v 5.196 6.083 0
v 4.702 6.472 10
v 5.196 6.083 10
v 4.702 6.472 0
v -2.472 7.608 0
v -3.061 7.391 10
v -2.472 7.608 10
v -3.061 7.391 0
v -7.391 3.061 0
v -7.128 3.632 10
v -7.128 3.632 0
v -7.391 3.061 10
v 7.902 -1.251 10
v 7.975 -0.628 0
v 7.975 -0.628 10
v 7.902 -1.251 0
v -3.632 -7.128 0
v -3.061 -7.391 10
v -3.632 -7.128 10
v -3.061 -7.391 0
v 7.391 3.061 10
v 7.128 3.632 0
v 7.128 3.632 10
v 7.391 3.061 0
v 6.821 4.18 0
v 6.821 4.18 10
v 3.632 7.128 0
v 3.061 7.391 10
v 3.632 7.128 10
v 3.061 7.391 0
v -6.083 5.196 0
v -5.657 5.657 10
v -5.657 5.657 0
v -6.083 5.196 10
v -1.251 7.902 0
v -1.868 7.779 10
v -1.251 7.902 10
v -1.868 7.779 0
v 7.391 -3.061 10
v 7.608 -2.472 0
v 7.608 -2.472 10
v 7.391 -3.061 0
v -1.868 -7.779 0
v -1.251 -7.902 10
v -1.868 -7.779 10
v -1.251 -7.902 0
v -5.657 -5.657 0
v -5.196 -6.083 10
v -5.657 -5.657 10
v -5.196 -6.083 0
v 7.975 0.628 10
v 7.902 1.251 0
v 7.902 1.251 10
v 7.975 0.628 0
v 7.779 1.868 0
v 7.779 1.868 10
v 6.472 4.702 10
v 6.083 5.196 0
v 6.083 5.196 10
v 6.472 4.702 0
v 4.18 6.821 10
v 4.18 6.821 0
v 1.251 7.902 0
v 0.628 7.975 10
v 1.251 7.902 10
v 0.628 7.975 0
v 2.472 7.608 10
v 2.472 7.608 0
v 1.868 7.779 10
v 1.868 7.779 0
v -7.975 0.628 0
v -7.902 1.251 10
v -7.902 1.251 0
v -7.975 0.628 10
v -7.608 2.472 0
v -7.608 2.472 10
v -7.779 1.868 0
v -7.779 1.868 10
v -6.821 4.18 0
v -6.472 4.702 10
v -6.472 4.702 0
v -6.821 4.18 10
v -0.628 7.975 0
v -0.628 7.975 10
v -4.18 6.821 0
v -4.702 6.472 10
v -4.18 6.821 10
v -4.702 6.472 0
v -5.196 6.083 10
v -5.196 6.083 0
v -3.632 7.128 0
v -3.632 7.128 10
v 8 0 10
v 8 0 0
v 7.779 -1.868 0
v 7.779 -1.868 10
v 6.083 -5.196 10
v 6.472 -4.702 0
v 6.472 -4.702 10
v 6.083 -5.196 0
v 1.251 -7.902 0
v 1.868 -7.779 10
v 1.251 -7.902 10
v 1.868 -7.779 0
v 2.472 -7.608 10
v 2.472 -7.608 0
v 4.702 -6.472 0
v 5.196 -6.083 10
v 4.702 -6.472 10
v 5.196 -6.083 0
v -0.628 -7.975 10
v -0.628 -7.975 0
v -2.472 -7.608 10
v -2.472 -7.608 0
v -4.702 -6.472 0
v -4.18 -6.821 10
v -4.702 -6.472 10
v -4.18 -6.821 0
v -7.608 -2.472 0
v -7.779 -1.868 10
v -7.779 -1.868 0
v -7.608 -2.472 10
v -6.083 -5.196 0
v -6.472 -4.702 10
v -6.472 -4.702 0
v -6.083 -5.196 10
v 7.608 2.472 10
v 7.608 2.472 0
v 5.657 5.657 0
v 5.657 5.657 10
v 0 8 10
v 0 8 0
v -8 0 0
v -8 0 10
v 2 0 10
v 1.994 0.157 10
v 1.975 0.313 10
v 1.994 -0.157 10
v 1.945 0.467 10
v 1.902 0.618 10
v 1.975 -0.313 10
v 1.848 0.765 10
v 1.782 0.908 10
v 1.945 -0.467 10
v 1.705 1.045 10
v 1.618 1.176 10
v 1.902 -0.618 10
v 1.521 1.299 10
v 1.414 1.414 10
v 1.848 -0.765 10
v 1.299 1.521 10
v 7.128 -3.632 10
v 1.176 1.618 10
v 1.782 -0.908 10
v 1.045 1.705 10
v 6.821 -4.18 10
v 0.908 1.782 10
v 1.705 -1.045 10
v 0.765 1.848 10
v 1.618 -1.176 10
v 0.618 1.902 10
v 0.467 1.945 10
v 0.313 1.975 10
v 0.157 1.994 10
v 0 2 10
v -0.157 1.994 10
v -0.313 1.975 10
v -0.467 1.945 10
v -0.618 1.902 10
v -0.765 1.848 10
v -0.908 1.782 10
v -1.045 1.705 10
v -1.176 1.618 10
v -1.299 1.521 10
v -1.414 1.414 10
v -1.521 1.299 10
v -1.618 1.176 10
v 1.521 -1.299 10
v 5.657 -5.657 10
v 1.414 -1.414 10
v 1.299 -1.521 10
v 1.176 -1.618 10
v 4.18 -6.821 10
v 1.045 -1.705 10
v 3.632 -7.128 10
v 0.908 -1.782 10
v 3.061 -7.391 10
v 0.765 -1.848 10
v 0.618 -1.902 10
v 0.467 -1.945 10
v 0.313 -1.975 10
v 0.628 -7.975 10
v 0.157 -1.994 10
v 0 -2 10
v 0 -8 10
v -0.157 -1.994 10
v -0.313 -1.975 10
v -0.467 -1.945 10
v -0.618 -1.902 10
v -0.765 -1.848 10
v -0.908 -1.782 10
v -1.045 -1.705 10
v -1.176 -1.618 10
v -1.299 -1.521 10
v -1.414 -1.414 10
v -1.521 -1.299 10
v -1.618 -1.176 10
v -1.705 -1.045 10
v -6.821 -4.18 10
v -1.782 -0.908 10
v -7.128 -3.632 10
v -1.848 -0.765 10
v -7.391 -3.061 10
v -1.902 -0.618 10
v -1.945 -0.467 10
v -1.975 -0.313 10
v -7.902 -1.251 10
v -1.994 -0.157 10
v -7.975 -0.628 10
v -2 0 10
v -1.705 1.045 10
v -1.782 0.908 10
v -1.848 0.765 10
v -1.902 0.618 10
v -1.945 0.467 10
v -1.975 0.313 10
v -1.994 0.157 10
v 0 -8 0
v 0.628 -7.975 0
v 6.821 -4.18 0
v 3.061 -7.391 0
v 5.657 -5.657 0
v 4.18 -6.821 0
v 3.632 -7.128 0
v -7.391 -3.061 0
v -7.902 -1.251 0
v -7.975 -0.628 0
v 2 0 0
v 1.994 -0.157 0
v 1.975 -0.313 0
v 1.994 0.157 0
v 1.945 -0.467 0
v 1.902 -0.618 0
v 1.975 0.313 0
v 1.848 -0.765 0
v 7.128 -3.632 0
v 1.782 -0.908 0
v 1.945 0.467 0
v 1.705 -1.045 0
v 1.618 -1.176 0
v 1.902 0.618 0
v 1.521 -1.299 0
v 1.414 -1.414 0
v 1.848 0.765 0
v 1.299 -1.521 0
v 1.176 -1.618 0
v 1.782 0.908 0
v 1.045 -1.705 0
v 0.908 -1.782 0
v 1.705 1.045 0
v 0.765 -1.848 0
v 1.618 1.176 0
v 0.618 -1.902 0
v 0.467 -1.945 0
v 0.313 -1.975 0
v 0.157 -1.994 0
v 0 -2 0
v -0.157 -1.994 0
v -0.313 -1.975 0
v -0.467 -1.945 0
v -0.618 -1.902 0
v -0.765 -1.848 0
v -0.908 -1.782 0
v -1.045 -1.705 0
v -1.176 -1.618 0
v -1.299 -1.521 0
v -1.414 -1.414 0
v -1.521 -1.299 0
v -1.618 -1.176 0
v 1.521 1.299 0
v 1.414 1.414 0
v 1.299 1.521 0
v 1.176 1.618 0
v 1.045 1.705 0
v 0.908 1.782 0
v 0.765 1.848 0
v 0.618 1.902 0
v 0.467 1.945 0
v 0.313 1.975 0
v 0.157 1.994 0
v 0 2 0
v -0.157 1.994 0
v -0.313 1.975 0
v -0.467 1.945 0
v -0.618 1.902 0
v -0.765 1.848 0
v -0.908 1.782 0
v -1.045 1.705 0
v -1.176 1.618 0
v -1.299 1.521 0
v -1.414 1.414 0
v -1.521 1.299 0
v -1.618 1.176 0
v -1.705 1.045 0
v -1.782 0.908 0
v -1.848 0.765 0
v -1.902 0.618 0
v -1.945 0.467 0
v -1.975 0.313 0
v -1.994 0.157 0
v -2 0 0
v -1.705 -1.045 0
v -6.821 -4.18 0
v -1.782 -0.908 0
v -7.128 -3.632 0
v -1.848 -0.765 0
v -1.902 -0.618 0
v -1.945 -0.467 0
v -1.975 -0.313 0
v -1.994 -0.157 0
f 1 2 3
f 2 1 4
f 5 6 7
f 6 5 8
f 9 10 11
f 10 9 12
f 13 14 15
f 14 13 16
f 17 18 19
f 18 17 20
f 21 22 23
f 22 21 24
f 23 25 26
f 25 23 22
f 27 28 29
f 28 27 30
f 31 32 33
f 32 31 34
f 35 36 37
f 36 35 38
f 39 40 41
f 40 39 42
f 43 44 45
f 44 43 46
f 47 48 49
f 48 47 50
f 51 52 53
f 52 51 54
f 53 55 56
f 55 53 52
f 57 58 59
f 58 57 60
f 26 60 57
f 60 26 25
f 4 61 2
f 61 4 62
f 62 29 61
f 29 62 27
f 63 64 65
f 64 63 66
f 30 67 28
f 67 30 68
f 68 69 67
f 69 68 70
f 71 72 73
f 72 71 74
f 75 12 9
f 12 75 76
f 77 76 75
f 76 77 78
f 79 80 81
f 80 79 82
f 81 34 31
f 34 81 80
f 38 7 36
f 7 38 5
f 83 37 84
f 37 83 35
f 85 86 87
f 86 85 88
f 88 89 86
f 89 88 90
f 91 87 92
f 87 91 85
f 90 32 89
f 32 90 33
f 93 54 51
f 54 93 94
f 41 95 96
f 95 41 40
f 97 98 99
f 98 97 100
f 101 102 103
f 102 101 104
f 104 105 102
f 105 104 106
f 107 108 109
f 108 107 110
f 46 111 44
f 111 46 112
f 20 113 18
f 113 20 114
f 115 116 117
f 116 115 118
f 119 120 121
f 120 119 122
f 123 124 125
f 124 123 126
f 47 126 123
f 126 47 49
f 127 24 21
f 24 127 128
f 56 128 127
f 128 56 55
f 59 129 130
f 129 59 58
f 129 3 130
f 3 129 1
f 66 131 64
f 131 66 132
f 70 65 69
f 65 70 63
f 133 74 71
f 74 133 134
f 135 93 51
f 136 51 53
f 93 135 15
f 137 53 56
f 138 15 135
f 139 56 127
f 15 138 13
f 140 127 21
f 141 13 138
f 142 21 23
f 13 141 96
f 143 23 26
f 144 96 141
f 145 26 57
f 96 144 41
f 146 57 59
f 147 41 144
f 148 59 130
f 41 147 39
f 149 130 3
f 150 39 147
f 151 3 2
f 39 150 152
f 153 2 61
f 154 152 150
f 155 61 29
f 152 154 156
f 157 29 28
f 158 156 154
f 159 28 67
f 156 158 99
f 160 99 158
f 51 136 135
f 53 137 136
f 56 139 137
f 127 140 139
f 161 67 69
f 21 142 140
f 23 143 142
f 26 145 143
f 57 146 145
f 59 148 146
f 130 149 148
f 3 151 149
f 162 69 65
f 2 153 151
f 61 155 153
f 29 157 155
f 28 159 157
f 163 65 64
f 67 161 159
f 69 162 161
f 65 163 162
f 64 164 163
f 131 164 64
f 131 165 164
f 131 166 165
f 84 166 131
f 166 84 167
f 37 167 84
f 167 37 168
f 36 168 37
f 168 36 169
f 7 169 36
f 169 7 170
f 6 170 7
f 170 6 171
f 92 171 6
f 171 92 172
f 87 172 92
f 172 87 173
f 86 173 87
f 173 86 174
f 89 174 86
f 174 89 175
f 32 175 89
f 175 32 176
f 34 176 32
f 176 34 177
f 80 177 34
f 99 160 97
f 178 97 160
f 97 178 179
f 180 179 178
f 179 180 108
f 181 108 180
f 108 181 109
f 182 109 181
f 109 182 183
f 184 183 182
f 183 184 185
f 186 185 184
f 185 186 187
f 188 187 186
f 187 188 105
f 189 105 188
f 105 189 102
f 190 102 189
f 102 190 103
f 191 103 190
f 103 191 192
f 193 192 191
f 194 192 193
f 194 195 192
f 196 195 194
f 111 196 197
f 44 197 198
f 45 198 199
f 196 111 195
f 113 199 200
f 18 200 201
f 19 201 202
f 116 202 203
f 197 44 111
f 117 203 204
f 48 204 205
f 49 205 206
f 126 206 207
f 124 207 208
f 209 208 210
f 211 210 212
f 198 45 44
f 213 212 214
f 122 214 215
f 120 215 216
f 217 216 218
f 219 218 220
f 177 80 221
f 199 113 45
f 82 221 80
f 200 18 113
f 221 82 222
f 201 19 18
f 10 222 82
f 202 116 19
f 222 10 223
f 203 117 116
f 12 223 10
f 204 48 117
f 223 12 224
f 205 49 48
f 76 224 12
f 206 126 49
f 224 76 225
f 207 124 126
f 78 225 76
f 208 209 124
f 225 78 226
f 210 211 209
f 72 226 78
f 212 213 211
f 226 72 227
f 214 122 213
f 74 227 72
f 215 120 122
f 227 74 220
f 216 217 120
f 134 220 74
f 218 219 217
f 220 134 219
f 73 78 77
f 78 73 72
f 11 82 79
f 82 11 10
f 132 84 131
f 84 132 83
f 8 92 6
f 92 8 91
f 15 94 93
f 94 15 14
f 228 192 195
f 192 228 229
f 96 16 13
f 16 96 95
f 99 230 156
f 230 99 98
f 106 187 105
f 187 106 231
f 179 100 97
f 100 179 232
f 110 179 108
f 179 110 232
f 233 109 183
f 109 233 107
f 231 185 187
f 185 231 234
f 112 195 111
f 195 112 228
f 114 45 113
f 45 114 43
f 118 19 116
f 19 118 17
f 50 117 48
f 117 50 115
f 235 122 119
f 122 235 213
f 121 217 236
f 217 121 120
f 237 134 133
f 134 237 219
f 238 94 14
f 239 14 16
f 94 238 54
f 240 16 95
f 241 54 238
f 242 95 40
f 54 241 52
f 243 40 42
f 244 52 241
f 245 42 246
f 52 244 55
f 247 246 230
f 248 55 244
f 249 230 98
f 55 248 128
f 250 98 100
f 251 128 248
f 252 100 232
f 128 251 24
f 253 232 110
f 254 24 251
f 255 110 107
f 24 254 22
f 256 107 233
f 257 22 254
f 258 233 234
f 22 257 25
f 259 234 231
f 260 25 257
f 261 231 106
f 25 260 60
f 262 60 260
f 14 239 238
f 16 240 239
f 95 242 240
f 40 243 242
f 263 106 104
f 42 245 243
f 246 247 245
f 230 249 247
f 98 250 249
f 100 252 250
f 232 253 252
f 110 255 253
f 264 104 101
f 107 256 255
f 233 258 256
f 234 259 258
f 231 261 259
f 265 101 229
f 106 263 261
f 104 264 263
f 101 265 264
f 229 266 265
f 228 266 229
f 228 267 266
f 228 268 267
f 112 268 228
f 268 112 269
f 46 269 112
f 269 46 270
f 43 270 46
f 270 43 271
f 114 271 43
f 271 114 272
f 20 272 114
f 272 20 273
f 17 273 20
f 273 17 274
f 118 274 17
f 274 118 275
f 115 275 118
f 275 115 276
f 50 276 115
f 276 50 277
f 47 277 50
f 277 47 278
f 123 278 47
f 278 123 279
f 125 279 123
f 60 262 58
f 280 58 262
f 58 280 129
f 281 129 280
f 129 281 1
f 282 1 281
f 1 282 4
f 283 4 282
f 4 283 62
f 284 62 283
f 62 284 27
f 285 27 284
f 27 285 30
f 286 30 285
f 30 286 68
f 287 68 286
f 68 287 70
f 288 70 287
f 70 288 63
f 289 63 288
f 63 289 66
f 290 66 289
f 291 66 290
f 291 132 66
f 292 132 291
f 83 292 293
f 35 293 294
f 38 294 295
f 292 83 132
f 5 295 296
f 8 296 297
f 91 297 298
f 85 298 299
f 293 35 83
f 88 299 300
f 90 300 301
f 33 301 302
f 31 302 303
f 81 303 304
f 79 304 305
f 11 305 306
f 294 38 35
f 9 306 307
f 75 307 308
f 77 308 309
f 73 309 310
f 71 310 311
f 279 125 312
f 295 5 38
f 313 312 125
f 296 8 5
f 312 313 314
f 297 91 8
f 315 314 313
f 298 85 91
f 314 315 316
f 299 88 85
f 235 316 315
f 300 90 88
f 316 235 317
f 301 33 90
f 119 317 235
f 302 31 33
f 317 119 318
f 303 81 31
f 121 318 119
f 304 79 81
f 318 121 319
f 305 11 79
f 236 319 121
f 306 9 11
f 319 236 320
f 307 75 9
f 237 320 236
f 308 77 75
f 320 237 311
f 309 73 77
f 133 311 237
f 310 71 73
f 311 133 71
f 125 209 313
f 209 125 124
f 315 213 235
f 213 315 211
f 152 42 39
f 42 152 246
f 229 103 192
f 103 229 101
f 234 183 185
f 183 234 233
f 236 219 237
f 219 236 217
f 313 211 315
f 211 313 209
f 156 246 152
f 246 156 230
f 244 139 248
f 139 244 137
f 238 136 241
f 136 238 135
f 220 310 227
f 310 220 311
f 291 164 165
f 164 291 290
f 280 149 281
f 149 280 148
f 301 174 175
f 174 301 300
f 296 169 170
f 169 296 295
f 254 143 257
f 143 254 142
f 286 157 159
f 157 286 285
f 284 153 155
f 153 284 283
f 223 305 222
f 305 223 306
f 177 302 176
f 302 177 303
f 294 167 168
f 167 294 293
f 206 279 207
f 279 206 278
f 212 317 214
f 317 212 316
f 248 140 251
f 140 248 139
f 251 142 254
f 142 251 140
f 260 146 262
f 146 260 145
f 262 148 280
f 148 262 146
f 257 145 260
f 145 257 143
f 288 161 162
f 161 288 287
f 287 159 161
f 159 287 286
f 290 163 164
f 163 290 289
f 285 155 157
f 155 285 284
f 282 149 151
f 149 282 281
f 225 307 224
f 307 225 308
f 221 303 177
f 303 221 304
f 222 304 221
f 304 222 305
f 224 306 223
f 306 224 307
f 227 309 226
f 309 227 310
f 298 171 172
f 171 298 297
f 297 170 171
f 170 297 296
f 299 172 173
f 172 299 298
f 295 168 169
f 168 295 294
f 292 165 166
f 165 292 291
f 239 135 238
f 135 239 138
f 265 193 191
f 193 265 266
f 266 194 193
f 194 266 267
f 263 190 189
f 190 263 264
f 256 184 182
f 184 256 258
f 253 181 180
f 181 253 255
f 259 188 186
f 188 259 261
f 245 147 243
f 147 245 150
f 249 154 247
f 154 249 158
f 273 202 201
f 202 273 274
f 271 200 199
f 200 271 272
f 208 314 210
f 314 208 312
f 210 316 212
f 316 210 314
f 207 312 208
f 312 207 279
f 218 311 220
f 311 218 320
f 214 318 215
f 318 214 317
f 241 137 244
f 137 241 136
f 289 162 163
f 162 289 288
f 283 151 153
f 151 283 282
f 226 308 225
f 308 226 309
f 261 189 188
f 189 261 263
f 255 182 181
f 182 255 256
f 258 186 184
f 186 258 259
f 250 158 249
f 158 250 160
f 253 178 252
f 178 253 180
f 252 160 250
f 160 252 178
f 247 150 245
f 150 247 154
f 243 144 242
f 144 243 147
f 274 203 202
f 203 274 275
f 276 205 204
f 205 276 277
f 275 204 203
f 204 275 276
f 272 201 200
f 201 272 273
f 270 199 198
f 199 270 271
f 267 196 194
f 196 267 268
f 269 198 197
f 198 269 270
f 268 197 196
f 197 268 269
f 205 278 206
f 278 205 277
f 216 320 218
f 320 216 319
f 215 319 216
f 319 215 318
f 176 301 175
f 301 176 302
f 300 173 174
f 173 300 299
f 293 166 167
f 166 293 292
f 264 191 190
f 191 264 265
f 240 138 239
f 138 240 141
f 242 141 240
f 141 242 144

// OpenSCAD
$fn=80;

difference() {
    union() {
        cylinder(d=16, h=10);
    }
    union() {
        cylinder(d=4, h=10);
    }
}
